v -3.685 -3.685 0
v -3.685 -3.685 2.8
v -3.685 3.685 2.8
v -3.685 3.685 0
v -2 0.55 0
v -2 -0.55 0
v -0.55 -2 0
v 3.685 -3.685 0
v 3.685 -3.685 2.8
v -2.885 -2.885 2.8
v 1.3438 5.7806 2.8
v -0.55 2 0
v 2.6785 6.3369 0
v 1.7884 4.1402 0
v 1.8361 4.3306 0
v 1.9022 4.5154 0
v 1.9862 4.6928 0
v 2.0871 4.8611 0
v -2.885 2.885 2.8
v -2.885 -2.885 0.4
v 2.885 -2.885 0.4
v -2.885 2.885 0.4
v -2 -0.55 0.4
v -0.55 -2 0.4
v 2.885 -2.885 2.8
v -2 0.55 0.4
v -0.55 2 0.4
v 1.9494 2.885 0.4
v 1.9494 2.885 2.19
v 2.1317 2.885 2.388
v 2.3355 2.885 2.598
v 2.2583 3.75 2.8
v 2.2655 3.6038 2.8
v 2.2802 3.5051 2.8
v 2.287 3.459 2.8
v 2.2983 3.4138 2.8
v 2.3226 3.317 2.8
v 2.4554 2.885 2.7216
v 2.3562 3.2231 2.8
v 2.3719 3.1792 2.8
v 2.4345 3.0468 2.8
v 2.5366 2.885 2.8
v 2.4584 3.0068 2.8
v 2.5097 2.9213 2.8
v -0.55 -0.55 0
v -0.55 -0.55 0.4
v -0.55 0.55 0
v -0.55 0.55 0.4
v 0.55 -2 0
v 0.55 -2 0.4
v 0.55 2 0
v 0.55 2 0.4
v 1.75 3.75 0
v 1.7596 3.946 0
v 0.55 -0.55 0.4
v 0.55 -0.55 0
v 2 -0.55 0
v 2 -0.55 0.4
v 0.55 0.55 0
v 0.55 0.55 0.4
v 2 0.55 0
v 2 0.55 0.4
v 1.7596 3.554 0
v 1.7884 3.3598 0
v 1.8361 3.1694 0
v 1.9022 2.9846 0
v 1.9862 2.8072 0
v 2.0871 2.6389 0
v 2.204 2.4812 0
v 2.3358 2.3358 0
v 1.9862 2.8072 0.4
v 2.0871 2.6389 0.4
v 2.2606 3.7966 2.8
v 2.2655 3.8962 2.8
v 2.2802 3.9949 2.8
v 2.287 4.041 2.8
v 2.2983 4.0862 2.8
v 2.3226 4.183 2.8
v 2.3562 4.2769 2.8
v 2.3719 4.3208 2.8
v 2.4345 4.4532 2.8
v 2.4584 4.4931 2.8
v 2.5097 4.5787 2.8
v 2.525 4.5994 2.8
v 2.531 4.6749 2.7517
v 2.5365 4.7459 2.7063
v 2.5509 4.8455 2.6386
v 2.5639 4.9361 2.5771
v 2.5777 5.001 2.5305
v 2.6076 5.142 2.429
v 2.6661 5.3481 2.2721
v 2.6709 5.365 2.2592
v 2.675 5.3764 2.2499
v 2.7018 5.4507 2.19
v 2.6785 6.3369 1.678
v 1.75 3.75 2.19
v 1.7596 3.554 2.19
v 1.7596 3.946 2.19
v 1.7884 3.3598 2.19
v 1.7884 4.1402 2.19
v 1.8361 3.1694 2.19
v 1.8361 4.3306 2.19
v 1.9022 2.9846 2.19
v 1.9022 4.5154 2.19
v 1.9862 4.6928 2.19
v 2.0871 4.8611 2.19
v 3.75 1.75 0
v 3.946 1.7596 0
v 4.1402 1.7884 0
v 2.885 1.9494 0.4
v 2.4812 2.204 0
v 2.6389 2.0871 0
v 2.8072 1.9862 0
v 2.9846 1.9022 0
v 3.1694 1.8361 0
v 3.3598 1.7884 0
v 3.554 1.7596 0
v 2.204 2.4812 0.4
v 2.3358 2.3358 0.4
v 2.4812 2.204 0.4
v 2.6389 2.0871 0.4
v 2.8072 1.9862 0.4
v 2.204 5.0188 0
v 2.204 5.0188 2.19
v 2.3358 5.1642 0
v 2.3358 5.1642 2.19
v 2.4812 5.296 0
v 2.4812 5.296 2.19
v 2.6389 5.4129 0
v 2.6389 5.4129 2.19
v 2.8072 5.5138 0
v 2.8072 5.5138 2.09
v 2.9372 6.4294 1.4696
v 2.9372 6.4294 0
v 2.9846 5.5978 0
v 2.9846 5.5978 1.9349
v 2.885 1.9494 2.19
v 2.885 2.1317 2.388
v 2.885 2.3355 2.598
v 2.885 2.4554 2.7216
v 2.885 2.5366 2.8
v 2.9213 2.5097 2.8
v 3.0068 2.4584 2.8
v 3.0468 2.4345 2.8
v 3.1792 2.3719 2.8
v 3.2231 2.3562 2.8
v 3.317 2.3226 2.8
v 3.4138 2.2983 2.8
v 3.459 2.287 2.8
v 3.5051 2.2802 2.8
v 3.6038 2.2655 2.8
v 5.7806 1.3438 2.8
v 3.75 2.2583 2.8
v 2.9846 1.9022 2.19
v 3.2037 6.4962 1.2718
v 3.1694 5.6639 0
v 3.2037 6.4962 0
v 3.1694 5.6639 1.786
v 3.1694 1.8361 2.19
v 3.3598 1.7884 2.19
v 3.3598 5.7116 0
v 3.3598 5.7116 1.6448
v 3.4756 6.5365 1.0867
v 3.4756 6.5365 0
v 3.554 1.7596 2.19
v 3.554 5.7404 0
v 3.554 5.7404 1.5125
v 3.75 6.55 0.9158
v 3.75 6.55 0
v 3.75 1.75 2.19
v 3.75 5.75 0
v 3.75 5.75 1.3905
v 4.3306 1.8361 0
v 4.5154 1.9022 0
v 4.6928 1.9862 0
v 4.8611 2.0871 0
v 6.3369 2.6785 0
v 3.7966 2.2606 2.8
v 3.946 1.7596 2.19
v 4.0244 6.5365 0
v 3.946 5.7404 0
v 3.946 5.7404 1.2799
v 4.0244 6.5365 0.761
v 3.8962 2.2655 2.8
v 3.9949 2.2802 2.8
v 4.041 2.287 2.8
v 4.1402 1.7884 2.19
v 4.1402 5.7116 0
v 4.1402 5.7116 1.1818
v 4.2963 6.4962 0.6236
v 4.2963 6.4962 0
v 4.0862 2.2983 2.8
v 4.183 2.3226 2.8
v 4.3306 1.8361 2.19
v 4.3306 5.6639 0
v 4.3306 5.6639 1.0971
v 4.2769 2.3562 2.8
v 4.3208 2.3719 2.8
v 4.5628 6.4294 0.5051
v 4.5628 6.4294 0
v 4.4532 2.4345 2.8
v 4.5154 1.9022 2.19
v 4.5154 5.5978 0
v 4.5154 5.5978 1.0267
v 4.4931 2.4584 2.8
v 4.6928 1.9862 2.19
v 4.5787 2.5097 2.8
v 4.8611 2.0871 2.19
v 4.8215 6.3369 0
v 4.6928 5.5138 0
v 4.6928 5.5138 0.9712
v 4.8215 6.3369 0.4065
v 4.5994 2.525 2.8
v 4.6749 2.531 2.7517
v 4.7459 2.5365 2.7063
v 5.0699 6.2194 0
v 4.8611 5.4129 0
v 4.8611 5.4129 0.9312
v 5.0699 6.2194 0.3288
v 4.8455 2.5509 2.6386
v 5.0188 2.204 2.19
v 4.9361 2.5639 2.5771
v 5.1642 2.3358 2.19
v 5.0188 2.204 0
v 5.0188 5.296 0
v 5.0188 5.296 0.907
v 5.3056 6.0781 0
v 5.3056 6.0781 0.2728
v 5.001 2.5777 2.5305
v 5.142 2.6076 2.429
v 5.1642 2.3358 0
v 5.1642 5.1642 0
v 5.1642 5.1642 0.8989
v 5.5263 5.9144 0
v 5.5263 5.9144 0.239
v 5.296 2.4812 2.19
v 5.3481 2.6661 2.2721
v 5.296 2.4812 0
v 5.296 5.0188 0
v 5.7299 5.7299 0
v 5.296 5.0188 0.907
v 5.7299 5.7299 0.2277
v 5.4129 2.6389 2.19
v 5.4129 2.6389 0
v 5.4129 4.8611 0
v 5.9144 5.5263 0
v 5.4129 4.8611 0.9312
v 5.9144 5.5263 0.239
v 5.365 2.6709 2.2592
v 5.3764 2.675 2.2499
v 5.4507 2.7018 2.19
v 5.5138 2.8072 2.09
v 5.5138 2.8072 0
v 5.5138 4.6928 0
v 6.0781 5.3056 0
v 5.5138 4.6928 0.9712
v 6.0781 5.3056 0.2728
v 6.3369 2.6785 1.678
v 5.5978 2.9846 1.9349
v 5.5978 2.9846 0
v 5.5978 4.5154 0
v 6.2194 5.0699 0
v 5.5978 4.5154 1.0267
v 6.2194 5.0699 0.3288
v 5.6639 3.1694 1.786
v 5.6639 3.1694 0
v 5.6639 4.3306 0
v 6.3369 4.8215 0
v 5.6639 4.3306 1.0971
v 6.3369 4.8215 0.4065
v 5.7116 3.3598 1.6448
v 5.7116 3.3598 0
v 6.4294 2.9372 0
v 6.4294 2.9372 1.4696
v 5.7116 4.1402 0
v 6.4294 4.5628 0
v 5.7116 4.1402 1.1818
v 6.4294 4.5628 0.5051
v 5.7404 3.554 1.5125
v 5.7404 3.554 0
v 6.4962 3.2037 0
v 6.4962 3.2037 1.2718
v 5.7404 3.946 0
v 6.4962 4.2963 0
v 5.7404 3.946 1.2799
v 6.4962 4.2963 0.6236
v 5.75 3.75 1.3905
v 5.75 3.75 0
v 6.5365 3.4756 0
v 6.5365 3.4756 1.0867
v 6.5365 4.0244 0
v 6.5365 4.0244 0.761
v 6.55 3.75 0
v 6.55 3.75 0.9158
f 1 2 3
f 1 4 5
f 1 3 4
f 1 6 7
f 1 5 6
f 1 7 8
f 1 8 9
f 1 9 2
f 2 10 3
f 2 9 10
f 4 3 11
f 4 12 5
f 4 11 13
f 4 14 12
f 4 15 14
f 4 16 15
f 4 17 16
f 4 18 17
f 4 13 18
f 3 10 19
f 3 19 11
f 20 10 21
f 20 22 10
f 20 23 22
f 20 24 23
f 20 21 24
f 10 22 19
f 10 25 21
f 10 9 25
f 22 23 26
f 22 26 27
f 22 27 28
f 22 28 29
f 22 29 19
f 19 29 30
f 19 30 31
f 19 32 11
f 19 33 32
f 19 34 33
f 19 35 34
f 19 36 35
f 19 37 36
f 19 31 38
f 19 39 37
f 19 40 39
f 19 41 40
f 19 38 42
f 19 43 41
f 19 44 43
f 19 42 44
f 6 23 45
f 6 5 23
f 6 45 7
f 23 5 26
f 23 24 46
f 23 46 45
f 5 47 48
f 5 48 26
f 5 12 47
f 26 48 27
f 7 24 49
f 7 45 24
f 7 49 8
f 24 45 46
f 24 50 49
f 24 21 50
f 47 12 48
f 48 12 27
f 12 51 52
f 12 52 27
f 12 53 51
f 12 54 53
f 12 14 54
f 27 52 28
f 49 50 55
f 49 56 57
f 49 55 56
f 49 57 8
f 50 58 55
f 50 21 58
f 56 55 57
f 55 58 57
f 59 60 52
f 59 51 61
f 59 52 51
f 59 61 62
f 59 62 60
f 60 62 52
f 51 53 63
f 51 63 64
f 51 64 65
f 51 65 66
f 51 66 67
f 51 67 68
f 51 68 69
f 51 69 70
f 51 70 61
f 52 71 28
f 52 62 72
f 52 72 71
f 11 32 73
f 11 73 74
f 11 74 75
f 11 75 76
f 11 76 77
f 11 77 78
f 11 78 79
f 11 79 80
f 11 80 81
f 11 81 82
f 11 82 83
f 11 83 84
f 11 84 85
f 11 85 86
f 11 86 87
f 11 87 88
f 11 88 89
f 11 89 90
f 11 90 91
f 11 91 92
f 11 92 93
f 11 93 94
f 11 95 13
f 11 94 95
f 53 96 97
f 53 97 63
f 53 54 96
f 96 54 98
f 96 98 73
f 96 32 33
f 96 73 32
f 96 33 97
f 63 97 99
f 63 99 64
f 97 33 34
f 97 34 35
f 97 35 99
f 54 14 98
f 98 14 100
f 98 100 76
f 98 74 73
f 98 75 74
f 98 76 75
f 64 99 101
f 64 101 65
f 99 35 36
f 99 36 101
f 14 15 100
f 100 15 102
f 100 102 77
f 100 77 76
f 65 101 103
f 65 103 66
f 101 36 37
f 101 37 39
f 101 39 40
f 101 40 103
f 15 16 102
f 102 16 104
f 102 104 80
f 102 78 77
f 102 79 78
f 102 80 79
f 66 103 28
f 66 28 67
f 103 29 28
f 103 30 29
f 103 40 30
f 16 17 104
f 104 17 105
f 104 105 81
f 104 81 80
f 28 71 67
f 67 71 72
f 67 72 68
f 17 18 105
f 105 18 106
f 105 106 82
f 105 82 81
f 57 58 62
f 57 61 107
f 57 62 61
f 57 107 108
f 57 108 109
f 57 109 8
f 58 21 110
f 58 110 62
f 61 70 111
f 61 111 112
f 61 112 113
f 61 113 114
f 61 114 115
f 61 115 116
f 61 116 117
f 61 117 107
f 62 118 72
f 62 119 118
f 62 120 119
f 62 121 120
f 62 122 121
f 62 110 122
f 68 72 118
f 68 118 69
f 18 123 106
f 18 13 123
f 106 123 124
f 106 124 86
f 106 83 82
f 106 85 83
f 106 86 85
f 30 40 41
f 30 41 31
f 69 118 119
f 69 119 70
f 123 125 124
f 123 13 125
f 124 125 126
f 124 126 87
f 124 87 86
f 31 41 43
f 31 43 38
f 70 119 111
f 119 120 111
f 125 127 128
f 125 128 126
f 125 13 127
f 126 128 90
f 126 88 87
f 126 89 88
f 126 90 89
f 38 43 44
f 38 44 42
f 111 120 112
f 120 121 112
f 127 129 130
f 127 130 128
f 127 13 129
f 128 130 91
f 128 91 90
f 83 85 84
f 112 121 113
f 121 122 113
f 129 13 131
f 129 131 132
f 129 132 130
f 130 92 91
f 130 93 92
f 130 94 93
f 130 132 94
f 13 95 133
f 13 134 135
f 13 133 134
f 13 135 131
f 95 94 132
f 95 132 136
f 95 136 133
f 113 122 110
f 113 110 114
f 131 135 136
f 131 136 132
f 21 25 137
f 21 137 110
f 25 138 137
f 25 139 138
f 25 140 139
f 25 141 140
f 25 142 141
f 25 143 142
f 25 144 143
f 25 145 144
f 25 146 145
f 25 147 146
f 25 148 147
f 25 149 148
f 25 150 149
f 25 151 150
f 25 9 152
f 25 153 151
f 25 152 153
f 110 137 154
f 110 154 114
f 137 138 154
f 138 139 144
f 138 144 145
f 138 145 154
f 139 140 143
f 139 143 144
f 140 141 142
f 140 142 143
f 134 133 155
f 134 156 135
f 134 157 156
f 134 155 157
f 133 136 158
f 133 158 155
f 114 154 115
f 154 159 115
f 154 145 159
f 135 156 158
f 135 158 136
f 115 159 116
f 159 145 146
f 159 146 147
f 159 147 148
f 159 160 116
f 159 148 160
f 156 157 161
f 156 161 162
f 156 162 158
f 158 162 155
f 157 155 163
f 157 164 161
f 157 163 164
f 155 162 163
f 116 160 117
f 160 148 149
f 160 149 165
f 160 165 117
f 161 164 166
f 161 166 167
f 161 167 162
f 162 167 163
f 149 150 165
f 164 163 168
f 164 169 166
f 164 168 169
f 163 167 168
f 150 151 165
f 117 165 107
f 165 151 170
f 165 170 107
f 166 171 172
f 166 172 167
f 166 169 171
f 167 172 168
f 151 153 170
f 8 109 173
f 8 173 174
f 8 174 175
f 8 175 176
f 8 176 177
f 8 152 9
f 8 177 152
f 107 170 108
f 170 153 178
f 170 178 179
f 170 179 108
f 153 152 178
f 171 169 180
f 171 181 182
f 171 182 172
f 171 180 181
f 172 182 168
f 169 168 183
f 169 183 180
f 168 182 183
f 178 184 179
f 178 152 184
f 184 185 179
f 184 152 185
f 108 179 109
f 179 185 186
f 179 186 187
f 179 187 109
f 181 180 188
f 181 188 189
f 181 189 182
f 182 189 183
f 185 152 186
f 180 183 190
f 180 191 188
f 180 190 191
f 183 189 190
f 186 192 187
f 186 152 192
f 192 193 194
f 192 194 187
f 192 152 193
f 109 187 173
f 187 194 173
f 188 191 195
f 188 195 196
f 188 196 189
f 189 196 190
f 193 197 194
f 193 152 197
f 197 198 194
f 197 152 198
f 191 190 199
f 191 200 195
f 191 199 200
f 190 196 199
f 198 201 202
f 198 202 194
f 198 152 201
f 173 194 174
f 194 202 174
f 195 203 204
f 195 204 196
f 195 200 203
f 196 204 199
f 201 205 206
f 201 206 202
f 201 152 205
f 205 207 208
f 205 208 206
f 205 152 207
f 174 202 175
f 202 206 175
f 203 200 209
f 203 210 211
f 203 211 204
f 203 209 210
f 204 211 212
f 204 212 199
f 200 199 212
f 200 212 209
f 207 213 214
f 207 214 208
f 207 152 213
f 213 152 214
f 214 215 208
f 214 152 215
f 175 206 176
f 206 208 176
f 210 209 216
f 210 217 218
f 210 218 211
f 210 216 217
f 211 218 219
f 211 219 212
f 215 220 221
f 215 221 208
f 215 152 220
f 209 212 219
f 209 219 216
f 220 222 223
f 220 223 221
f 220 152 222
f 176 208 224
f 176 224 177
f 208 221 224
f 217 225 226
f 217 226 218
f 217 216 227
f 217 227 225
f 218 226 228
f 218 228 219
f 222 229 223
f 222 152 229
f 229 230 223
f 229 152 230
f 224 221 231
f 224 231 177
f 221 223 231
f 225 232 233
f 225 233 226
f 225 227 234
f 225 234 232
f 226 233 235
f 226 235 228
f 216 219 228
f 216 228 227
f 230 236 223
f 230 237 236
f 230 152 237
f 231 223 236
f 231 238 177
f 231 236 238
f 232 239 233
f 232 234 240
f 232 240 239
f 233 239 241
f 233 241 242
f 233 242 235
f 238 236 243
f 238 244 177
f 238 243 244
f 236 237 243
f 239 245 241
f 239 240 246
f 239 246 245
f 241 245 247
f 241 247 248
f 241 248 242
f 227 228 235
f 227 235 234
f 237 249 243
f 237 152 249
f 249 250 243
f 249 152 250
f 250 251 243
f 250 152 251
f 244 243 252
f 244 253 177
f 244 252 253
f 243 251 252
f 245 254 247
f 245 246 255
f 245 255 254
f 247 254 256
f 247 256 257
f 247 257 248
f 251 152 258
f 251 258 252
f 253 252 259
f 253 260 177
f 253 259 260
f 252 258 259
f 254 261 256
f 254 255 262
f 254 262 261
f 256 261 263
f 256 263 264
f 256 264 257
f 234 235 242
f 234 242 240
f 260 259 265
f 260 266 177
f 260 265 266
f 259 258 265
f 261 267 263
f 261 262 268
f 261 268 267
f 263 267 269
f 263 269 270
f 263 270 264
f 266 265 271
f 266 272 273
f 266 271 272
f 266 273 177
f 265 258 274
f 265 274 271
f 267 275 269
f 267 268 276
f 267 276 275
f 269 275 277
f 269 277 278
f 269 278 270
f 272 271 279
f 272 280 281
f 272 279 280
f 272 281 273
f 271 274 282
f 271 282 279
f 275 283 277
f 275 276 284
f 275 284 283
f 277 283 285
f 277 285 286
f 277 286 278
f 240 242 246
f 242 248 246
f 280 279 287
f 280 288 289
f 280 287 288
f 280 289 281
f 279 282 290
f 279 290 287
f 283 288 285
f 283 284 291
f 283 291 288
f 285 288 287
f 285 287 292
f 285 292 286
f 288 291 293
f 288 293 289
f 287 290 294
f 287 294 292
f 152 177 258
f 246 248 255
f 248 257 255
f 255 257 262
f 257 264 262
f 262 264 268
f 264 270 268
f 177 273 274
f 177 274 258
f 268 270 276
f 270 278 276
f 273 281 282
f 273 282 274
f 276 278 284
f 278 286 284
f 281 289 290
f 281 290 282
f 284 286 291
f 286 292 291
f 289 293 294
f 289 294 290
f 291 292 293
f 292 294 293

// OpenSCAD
// file: utils.scad
SWITCH_HOLE_WIDTH = 14;
SWITCH_HOLE_TOLERANCE = 0.2;

PLATE_THICKNESS = 1.7;
PLATE_BORDER_WIDTH = 3;

SWITCH_HEIGHT_UNDER_PLATE = 5 - PLATE_THICKNESS;
SWITCH_PLACEHOLDER_WIDTH = 19.05;

STAB_2u_DISTANCE_BETWEEN_HOLES_CENTER = 23.8;
STAB_3u_DISTANCE_BETWEEN_HOLES_CENTER = 38.1;
STAB_5u_DISTANCE_BETWEEN_HOLES_CENTER = 76.2;
// STAB_HOLE_WIDHT = 6.75;
STAB_HOLE_WIDHT = 7;
STAB_HOLE_HEIGHT = 14;
STAB_HOLE_DISTANCE_TO_SWITCH_TOP = 1;

KEYCAP_WIDTH = 18.10;
KEYCAP_HEIGHT = 11.60;
KEYCAP_HEIGHT_ABOVE_PLATE = 6.80;

SUPPORT_WALL_THICKNESS = 1.85;

/* [Hidden] */

$fn = 32;

module hole(x = 0, y = 0, w = 0, h = 0, is_support = false) {
  real_x = x * SWITCH_PLACEHOLDER_WIDTH;
  real_y = y * SWITCH_PLACEHOLDER_WIDTH;
  real_w = w * SWITCH_PLACEHOLDER_WIDTH;
  real_h = h * SWITCH_PLACEHOLDER_WIDTH;

  center_x = real_x + real_w/2;
  center_y = real_y + real_h/2;
  translate([center_x, center_y, 0]) {
    if (is_support) {
      r = 1.5;
      // Switch under plate
      offset(r = r) offset(r = -r) square(SWITCH_PLACEHOLDER_WIDTH - SUPPORT_WALL_THICKNESS, true);

      // Stab under plate
      offset(r = r) offset(r = -r) {
        // 2u, 2.25u, 2.75u stab
        if (w == 2 || w == 2.25 || w == 2.75) {
          square([STAB_HOLE_WIDHT + STAB_2u_DISTANCE_BETWEEN_HOLES_CENTER + 3, SWITCH_PLACEHOLDER_WIDTH + 1], true);
        }
        
        // 3u stab
        if (w == 3) {
          square([STAB_HOLE_WIDHT + STAB_3u_DISTANCE_BETWEEN_HOLES_CENTER + 3, SWITCH_PLACEHOLDER_WIDTH + 1], true);
        }

        // ISO enter key
        if (h == 2) {
          square([SWITCH_PLACEHOLDER_WIDTH + 1, STAB_HOLE_WIDHT + STAB_2u_DISTANCE_BETWEEN_HOLES_CENTER + 3], true);
        }
      }
    } else {
      // Switch plate hole
      square(SWITCH_HOLE_WIDTH + SWITCH_HOLE_TOLERANCE, true);

      // Stab plate hole
      stab_distance_to_top = y == 0 ? STAB_HOLE_DISTANCE_TO_SWITCH_TOP : -STAB_HOLE_DISTANCE_TO_SWITCH_TOP;
      translate([0, stab_distance_to_top, 0]) {
        // 2u, 2.25u, 2.75u stab
        if (w == 2 || w == 2.25 || w == 2.75) {
          translate([STAB_2u_DISTANCE_BETWEEN_HOLES_CENTER/2, 0, 0])  square([STAB_HOLE_WIDHT, STAB_HOLE_HEIGHT], true);
          translate([-STAB_2u_DISTANCE_BETWEEN_HOLES_CENTER/2, 0, 0])  square([STAB_HOLE_WIDHT, STAB_HOLE_HEIGHT], true);
        }
        
        // 3u stab
        if (w == 3) {
          translate([STAB_3u_DISTANCE_BETWEEN_HOLES_CENTER/2, 0, 0])  square([STAB_HOLE_WIDHT, STAB_HOLE_HEIGHT], true);
          translate([-STAB_3u_DISTANCE_BETWEEN_HOLES_CENTER/2, 0, 0])  square([STAB_HOLE_WIDHT, STAB_HOLE_HEIGHT], true);
        }
      } 

      // ISO enter key
      if (h == 2) {
        translate([-STAB_HOLE_DISTANCE_TO_SWITCH_TOP, 0, 0]) {
          translate([0, STAB_2u_DISTANCE_BETWEEN_HOLES_CENTER/2, 0])  square([STAB_HOLE_HEIGHT, STAB_HOLE_WIDHT], true);
          translate([0, -STAB_2u_DISTANCE_BETWEEN_HOLES_CENTER/2, 0])  square([STAB_HOLE_HEIGHT, STAB_HOLE_WIDHT], true);
        }
      }
    }
  }
}

module plate(x = 0, y = 0) {
  difference() {
    square([x * SWITCH_PLACEHOLDER_WIDTH, y * SWITCH_PLACEHOLDER_WIDTH]);
    children();
  }
}
// main file
// THE LEVITATOR - Goes under the keycap to provide a cusion of magnetic levitation

// AUTHOR: Riskable <riskable@youknowwhat.com>
// VERSION: 1.0 (Changelog is at the bottom)

/* NOTES:

    * The default configuration works with 4x1 through 4x2mm magnets (anything shorter than 2mm will end up stuck in
   there just fine--don't worry about it).
    * The default configuration will "eat" 0.4mm of your stem's cross height.  So keycaps won't be able to go all the
   way down (if you didn't print that part of the stem slightly longer to make up for it).  In testing, losing 0.4mm of
   height on the cross part of the stem makes absolutely no difference whatsoever.  The keycap still stays on just fine.
   I wouldn't worry about it =)

*/

$fn = 64;

use <utils.scad>

// Configurables
LEVITATOR_THICKNESS =
    0.4; // How thick the floor will be/how much of the cross part of the stem (+) gets eaten by THE LEVITATOR
WALL_THICKNESS = 0.8;   // How thick around the edges you want it to be (0.8 is fine and fits under most keycaps)
STEM_TOLERANCE = 0.15;  // How tight the cross-shaped cutout will be
MAGNET_TOLERANCE = 0.2; // Only used with MAGNET_HEIGHT (because we have some bridging)
MAGNET_DIAMETER = 4;
MAGNET_HEIGHT = 2;
MAGNET_DISTANCE = 3.75; // Distance from the center of the stem where the magnet goes

// Constants
CHERRY_CYLINDER_DIAMETER = 5.47; // Represents the keycap's stem (female side of the +)
CHERRY_CROSS_LENGTH = 4;         // Length of the - and the | in the +
// We make the cross slightly thinner than normal to keep a tight fit:
CHERRY_CROSS_THICKNESS_X = 1.1; // Width of the - and in the + (Reality: 1.31)
CHERRY_CROSS_THICKNESS_Y = 1.1; // Width of the | in the + (Reality: 1.09)

levitator(MAGNET_DIAMETER, MAGNET_HEIGHT, magnet_distance = MAGNET_DISTANCE, magnet_tolerance = MAGNET_TOLERANCE,
          wall_thickness = WALL_THICKNESS, thickness = LEVITATOR_THICKNESS, stem_tolerance = STEM_TOLERANCE);
// levitator_double_sided(MAGNET_DIAMETER, MAGNET_HEIGHT, magnet_distance=MAGNET_DISTANCE,
// magnet_tolerance=MAGNET_TOLERANCE, wall_thickness=WALL_THICKNESS, thickness=LEVITATOR_THICKNESS,
// stem_tolerance=STEM_TOLERANCE);

// TODO: Finish making this as well as making a matching void space version for top plates:
// This is for the special situations with long ass/heavy spacebars:
BACKFORCE_LENGTH = 30; // 15mm from the center of the switch on either side
BACKFORCE_WIDTH =
    11; // Needs to fit inside/under the keycap but not terribly tight--just enough to prevent it from rotating
// uplifting_jigaroo(BACKFORCE_LENGTH, BACKFORCE_WIDTH, stem_diameter=CHERRY_CYLINDER_DIAMETER, magnet_diameter=4,
// magnet_height=2, magnet_tolerance=0, wall_thickness=1.2);

module levitator(magnet_diameter, magnet_height, magnet_distance = 3.75, magnet_tolerance = MAGNET_TOLERANCE,
                 wall_thickness = 0.9, thickness = 1, stem_tolerance = 0.15)
{
    // NOTE: stem_tolerance is the keycap stem; not the switch stem
    height = 2 + wall_thickness; // Just enough to grab the stem
    difference()
    {
        translate([ 0, 0, height / 2 ]) union()
        {
            // Main body of the thing
            hull()
            {
                // NOTE: The square-ish walls around the stem area are just to provide rigidity
                cube(
                    [
                        CHERRY_CYLINDER_DIAMETER + wall_thickness * 2 + stem_tolerance * 2,
                        CHERRY_CYLINDER_DIAMETER + wall_thickness * 2 + stem_tolerance * 2,
                        height
                    ],
                    center = true);
                translate([ magnet_distance, magnet_distance, 0 ])
                    cylinder(d = magnet_diameter + wall_thickness * 2, h = height, center = true);
            }
            // Body of the part that holds the magnet (hollowed out below)
            translate([ magnet_distance, magnet_distance, 0 ])
                cylinder(d = magnet_diameter + wall_thickness * 2, h = height, center = true);
        }
        translate([ 0, 0, -5 ]) cherry_cross(length = 10);               // Just don't die on it
        translate([ 0, 0, height / 2 + thickness + wall_thickness / 2 ]) // Stem cutout
            cube(
                [
                    CHERRY_CYLINDER_DIAMETER + stem_tolerance * 2, CHERRY_CYLINDER_DIAMETER + stem_tolerance * 2,
                    height +
                    wall_thickness
                ],
                center = true);
        translate([ magnet_distance, magnet_distance, (magnet_height + magnet_tolerance) / 2 - 0.01 ])
        {
            cylinder(d = magnet_diameter, h = magnet_height + magnet_tolerance, center = true);
            // So we can pop the magnet out if we screw up which pole is facing down:
            //            rotate([0,0,45])
            //                cube([magnet_diameter/3,magnet_diameter/3,100], center=true);
        }
        // Make an angled hole in the top that stops the magnet from coming out while also letting you push it out if
        // needed to flip it around
        translate([ magnet_distance, magnet_distance, wall_thickness / 2 + (magnet_height + magnet_tolerance) - 0.01 ])
            cylinder(d1 = magnet_diameter, d2 = magnet_diameter / 1.5, h = wall_thickness, center = true);
        // Cut off a few bits here and there so it can fit under more keycaps
        //        translate([magnet_distance*2+wall_thickness/1.25,magnet_distance*1.25,magnet_diameter/2])
        //            cube([magnet_diameter, magnet_diameter*2, magnet_diameter*2], center=true);
        //        translate([magnet_distance*1.25,magnet_distance*2+wall_thickness/1.25,magnet_diameter/2])
        //            cube([magnet_diameter*2, magnet_diameter, magnet_diameter*2], center=true);
        translate([ magnet_distance * 1.5, magnet_distance * 1.5, magnet_diameter / 1.35 ]) rotate([ 0, -50, 45 ])
            cube([ magnet_diameter, magnet_diameter * 2, magnet_diameter * 2 ], center = true);
    }
}

module levitator_double_sided(magnet_diameter, magnet_height, magnet_distance = 3.75,
                              magnet_tolerance = MAGNET_TOLERANCE, wall_thickness = 0.9, thickness = 1,
                              stem_tolerance = 0.15)
{
    // NOTE: stem_tolerance is the keycap stem; not the switch stem
    height = 2 + wall_thickness; // Just enough to grab the stem
    difference()
    {
        translate([ 0, 0, height / 2 ]) union()
        {
            // Main body of the thing
            hull()
            {
                // NOTE: The square-ish walls around the stem area are just to provide rigidity
                cube(
                    [
                        CHERRY_CYLINDER_DIAMETER + wall_thickness * 2 + stem_tolerance * 2,
                        CHERRY_CYLINDER_DIAMETER + wall_thickness * 2 + stem_tolerance * 2,
                        height
                    ],
                    center = true);
                translate([ magnet_distance, magnet_distance, 0 ])
                    cylinder(d = magnet_diameter + wall_thickness * 2, h = height, center = true);
                translate([ -magnet_distance, -magnet_distance, 0 ])
                    cylinder(d = magnet_diameter + wall_thickness * 2, h = height, center = true);
            }
            // Body of the part that holds the magnet (hollowed out below)
            translate([ magnet_distance, magnet_distance, 0 ])
                cylinder(d = magnet_diameter + wall_thickness * 2, h = height, center = true);
        }
        translate([ 0, 0, -5 ]) cherry_cross(length = 10);               // Just don't die on it
        translate([ 0, 0, height / 2 + thickness + wall_thickness / 2 ]) // Stem cutout
            cube(
                [
                    CHERRY_CYLINDER_DIAMETER + stem_tolerance * 2, CHERRY_CYLINDER_DIAMETER + stem_tolerance * 2,
                    height +
                    wall_thickness
                ],
                center = true);
        translate([ magnet_distance, magnet_distance, (magnet_height + magnet_tolerance) / 2 - 0.01 ])
            cylinder(d = magnet_diameter, h = magnet_height + magnet_tolerance, center = true);
        translate([ -magnet_distance, -magnet_distance, (magnet_height + magnet_tolerance) / 2 - 0.01 ])
            cylinder(d = magnet_diameter, h = magnet_height + magnet_tolerance, center = true);
        // Make an angled hole in the top that stops the magnet from coming out while also letting you push it out if
        // needed to flip it around
        translate([ magnet_distance, magnet_distance, wall_thickness / 2 + (magnet_height + magnet_tolerance) - 0.01 ])
            cylinder(d1 = magnet_diameter, d2 = magnet_diameter / 1.5, h = wall_thickness, center = true);
        translate(
            [ -magnet_distance, -magnet_distance, wall_thickness / 2 + (magnet_height + magnet_tolerance) - 0.01 ])
            cylinder(d1 = magnet_diameter, d2 = magnet_diameter / 1.5, h = wall_thickness, center = true);
        // Cut off a few bits here and there so it can fit under more keycaps
        translate([ magnet_distance * 1.5, magnet_distance * 1.5, magnet_diameter / 1.35 ]) rotate([ 0, -50, 45 ])
            cube([ magnet_diameter, magnet_diameter * 2, magnet_diameter * 2 ], center = true);
        translate([ -magnet_distance * 1.5, -magnet_distance * 1.5, magnet_diameter / 1.35 ]) rotate([ 0, 50, 45 ])
            cube([ magnet_diameter, magnet_diameter * 2, magnet_diameter * 2 ], center = true);
    }
}

// This is a magnetic levitation backward-force generator that can be placed under any given (long) keycap to cusion the
// bottom and provide a backwards (upwards) force to ease the burden of bringing a heavy keycap back up.  In other
// words, it's for (heavy) spacebars.  NOTE: The *length* is really just the distance between the center of the
// magnets--not the actual length of the thing. NOTE: Requires matching magnets (same locations underneath) in the
// keyboard plate!
module uplifting_jigaroo(length, width, stem_diameter = CHERRY_CYLINDER_DIAMETER, magnet_diameter = 4,
                         magnet_height = 2, magnet_tolerance = 0, wall_thickness = 1.2)
{
    // NOTE: We make this pretty thick so it's stable--even though that adds extra weight
    difference()
    {
        cube(
            [
                length + magnet_diameter + magnet_tolerance * 2 + wall_thickness * 2, width, magnet_height +
                wall_thickness
            ],
            center = true);
        cube([ stem_diameter, stem_diameter, wall_thickness * 8 ], center = true);
        translate([ length / 2, 0, magnet_height / 2 - wall_thickness / 4 ])
            cylinder(d = magnet_diameter + magnet_tolerance * 2, h = magnet_height + 0.01, center = true);
        translate([ -length / 2, 0, magnet_height / 2 - wall_thickness / 4 ])
            cylinder(d = magnet_diameter + magnet_tolerance * 2, h = magnet_height + 0.01, center = true);
    }
}

// This makes the + bit that slides *in* to a Cherry MX style keycap:
module cherry_cross(length = CHERRY_CROSS_LENGTH, y_adjust = 0, x_adjust = 0)
{
    linear_extrude(height = length)
    {
        square([ CHERRY_CROSS_THICKNESS_X + x_adjust, CHERRY_CROSS_LENGTH ], center = true);
        square([ CHERRY_CROSS_LENGTH, CHERRY_CROSS_THICKNESS_Y + y_adjust ], center = true);
    }
}
